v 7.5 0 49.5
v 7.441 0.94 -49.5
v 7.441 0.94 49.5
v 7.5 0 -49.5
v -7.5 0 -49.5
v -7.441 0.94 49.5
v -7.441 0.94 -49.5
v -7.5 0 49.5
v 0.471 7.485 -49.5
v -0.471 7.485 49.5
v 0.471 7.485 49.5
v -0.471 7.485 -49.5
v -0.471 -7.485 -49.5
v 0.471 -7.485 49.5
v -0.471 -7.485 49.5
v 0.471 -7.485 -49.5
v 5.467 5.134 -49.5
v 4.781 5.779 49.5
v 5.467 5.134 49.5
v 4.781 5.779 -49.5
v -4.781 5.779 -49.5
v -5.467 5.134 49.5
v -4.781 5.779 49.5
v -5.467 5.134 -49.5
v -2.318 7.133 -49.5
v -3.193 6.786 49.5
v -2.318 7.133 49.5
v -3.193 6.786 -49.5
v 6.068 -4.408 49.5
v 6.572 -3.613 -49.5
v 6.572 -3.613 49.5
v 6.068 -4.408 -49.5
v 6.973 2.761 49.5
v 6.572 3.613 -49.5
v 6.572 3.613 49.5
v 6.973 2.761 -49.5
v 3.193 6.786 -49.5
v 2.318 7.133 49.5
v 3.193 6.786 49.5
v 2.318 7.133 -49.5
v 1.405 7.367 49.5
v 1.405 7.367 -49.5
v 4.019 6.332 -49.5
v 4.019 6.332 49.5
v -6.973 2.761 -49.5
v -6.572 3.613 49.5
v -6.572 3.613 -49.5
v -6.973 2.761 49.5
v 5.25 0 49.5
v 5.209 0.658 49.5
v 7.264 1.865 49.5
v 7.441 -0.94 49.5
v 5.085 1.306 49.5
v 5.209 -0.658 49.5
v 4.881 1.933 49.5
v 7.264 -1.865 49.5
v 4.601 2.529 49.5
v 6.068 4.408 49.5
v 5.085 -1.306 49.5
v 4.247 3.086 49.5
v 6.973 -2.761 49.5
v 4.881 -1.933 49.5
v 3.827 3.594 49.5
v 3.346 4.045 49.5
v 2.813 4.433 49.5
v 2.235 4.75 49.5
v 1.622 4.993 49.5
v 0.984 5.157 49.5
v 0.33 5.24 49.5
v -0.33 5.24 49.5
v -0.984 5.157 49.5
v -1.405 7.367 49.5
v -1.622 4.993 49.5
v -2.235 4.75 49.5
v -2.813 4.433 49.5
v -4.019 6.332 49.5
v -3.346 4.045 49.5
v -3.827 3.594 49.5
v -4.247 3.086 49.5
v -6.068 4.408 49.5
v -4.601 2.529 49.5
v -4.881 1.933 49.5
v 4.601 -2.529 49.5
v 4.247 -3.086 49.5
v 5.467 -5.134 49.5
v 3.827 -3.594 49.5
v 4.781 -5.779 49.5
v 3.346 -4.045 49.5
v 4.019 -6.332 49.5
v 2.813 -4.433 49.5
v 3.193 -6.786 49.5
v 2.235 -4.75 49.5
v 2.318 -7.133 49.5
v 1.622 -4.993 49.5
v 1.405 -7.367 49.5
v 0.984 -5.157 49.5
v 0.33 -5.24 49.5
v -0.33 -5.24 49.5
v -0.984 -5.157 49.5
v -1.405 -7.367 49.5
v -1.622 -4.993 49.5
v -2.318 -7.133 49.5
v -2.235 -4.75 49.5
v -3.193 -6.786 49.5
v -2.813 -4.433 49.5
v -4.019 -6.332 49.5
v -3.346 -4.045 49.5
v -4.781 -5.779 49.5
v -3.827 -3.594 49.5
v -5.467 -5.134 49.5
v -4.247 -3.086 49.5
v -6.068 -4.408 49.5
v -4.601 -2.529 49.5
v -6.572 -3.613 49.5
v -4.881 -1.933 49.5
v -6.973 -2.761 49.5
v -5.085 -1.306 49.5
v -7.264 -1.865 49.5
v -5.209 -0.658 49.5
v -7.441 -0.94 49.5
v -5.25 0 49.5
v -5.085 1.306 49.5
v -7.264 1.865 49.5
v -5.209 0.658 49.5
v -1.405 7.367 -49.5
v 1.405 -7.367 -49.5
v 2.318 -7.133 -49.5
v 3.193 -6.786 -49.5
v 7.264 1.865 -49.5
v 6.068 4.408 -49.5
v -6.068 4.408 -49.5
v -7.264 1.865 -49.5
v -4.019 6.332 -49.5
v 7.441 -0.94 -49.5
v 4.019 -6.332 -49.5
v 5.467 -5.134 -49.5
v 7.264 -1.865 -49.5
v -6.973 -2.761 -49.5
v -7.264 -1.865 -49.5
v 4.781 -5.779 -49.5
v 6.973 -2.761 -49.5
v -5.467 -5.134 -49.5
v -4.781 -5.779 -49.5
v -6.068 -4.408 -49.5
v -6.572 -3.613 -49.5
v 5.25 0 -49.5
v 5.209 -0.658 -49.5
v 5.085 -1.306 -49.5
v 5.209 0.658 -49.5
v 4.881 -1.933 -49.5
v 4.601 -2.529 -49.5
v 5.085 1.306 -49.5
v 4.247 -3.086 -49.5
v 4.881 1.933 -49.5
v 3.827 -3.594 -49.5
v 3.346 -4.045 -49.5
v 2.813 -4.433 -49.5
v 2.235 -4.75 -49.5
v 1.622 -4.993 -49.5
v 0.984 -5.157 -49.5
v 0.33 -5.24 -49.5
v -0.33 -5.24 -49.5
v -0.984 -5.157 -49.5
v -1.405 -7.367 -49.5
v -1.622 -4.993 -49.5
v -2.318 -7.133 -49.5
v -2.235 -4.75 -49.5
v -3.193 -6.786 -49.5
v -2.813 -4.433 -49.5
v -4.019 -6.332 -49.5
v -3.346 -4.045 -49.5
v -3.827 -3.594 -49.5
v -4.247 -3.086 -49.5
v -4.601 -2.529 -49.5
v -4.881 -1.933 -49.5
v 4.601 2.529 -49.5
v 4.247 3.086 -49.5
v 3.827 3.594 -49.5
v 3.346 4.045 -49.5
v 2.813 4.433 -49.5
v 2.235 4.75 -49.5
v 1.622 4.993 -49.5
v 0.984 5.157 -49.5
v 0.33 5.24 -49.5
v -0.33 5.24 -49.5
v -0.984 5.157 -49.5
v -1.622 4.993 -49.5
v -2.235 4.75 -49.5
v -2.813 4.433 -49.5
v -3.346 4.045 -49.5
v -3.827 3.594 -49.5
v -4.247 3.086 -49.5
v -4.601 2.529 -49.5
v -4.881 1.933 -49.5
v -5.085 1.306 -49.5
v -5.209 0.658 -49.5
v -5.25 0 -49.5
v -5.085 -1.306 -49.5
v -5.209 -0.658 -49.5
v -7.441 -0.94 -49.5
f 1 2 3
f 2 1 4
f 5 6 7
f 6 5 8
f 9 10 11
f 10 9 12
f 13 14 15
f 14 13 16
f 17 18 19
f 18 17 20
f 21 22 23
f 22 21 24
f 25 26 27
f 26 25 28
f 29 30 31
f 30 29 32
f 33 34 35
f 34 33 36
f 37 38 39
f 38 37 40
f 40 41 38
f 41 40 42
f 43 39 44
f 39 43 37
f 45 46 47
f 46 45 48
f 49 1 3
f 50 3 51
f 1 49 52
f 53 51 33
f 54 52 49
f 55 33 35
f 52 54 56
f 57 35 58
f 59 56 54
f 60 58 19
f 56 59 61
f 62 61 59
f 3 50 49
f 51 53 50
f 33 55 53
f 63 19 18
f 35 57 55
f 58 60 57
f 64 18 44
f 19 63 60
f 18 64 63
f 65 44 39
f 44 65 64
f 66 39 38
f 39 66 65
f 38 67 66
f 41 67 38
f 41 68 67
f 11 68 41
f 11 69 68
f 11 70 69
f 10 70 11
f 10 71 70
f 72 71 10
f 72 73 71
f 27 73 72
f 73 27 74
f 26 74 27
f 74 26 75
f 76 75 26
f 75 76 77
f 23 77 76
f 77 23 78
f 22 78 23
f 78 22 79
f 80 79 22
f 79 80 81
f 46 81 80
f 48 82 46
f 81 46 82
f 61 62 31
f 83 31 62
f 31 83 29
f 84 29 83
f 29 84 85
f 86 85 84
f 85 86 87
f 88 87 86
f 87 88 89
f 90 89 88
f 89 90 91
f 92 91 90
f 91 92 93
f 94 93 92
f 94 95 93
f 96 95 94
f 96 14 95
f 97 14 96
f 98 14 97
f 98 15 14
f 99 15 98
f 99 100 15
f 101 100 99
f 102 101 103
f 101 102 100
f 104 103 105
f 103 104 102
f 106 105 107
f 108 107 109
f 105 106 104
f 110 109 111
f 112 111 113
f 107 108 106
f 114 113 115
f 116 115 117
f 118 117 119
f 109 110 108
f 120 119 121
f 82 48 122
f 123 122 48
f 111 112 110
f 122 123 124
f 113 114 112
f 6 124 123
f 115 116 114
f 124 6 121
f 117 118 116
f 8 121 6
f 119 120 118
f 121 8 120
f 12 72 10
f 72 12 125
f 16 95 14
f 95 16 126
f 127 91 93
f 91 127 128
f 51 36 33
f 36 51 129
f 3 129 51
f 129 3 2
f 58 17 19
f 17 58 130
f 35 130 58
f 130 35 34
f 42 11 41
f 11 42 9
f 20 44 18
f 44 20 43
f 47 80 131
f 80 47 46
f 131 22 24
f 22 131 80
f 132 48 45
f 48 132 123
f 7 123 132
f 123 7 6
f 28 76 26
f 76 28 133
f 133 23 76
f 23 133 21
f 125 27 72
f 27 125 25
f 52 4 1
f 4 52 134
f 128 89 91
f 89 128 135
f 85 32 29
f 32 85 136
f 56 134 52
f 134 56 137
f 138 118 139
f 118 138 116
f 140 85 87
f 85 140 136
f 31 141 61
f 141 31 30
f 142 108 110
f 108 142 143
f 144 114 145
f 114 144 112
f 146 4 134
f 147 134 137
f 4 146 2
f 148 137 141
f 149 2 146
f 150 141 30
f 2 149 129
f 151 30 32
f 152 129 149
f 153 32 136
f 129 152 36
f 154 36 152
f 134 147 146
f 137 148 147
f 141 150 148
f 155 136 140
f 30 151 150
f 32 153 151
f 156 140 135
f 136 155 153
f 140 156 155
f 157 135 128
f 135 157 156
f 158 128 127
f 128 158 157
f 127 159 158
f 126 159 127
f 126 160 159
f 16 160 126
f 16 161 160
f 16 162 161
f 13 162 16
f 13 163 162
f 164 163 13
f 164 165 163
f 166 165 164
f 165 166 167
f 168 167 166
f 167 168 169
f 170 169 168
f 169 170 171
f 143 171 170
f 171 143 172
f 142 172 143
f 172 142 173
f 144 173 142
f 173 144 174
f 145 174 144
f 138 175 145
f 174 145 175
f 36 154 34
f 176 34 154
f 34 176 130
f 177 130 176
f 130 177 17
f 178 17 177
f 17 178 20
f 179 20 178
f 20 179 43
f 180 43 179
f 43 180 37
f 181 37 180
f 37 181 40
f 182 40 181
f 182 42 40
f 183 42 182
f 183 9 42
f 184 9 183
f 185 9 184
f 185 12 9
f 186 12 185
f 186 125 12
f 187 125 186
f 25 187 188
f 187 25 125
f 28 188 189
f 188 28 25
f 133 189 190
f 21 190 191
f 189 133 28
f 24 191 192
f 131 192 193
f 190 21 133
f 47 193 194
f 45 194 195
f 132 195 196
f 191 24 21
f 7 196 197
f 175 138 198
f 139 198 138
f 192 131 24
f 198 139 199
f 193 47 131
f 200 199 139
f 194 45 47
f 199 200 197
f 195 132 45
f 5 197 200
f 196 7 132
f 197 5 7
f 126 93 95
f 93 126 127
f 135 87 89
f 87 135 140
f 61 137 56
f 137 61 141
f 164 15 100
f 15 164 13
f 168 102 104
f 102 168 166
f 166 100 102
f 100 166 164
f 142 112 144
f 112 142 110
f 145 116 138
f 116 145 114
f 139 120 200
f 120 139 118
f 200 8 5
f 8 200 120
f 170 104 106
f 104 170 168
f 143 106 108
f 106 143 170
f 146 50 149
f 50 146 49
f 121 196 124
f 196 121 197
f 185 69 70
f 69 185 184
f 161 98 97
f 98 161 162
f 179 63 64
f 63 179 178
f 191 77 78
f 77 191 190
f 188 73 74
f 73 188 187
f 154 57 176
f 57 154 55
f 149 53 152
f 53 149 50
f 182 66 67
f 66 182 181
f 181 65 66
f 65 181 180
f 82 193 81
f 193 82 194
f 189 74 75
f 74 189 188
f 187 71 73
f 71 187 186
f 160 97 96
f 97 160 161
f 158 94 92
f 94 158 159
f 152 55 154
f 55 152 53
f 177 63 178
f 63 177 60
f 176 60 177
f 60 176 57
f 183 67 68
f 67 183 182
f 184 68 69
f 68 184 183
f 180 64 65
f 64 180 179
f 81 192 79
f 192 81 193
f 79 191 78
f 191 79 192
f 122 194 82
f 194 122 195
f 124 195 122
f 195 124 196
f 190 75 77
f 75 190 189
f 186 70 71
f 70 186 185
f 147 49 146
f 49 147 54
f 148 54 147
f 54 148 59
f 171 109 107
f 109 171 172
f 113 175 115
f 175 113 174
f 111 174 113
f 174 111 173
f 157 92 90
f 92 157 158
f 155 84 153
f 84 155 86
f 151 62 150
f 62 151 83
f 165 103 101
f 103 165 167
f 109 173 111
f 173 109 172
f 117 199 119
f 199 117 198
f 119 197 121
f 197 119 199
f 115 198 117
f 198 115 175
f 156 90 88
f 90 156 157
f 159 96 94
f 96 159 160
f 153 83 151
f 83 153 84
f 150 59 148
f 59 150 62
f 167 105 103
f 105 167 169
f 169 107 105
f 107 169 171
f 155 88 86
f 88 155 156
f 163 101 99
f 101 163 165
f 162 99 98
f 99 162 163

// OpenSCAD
$fn = 50;


difference() {
	union() {
		translate(v = [0, 0, -49.5000000000]) {
			cylinder(h = 99, r = 7.5000000000);
		}
	}
	union() {
		translate(v = [0, 0, -100.0000000000]) {
			cylinder(h = 200, r = 5.2500000000);
		}
	}
}
